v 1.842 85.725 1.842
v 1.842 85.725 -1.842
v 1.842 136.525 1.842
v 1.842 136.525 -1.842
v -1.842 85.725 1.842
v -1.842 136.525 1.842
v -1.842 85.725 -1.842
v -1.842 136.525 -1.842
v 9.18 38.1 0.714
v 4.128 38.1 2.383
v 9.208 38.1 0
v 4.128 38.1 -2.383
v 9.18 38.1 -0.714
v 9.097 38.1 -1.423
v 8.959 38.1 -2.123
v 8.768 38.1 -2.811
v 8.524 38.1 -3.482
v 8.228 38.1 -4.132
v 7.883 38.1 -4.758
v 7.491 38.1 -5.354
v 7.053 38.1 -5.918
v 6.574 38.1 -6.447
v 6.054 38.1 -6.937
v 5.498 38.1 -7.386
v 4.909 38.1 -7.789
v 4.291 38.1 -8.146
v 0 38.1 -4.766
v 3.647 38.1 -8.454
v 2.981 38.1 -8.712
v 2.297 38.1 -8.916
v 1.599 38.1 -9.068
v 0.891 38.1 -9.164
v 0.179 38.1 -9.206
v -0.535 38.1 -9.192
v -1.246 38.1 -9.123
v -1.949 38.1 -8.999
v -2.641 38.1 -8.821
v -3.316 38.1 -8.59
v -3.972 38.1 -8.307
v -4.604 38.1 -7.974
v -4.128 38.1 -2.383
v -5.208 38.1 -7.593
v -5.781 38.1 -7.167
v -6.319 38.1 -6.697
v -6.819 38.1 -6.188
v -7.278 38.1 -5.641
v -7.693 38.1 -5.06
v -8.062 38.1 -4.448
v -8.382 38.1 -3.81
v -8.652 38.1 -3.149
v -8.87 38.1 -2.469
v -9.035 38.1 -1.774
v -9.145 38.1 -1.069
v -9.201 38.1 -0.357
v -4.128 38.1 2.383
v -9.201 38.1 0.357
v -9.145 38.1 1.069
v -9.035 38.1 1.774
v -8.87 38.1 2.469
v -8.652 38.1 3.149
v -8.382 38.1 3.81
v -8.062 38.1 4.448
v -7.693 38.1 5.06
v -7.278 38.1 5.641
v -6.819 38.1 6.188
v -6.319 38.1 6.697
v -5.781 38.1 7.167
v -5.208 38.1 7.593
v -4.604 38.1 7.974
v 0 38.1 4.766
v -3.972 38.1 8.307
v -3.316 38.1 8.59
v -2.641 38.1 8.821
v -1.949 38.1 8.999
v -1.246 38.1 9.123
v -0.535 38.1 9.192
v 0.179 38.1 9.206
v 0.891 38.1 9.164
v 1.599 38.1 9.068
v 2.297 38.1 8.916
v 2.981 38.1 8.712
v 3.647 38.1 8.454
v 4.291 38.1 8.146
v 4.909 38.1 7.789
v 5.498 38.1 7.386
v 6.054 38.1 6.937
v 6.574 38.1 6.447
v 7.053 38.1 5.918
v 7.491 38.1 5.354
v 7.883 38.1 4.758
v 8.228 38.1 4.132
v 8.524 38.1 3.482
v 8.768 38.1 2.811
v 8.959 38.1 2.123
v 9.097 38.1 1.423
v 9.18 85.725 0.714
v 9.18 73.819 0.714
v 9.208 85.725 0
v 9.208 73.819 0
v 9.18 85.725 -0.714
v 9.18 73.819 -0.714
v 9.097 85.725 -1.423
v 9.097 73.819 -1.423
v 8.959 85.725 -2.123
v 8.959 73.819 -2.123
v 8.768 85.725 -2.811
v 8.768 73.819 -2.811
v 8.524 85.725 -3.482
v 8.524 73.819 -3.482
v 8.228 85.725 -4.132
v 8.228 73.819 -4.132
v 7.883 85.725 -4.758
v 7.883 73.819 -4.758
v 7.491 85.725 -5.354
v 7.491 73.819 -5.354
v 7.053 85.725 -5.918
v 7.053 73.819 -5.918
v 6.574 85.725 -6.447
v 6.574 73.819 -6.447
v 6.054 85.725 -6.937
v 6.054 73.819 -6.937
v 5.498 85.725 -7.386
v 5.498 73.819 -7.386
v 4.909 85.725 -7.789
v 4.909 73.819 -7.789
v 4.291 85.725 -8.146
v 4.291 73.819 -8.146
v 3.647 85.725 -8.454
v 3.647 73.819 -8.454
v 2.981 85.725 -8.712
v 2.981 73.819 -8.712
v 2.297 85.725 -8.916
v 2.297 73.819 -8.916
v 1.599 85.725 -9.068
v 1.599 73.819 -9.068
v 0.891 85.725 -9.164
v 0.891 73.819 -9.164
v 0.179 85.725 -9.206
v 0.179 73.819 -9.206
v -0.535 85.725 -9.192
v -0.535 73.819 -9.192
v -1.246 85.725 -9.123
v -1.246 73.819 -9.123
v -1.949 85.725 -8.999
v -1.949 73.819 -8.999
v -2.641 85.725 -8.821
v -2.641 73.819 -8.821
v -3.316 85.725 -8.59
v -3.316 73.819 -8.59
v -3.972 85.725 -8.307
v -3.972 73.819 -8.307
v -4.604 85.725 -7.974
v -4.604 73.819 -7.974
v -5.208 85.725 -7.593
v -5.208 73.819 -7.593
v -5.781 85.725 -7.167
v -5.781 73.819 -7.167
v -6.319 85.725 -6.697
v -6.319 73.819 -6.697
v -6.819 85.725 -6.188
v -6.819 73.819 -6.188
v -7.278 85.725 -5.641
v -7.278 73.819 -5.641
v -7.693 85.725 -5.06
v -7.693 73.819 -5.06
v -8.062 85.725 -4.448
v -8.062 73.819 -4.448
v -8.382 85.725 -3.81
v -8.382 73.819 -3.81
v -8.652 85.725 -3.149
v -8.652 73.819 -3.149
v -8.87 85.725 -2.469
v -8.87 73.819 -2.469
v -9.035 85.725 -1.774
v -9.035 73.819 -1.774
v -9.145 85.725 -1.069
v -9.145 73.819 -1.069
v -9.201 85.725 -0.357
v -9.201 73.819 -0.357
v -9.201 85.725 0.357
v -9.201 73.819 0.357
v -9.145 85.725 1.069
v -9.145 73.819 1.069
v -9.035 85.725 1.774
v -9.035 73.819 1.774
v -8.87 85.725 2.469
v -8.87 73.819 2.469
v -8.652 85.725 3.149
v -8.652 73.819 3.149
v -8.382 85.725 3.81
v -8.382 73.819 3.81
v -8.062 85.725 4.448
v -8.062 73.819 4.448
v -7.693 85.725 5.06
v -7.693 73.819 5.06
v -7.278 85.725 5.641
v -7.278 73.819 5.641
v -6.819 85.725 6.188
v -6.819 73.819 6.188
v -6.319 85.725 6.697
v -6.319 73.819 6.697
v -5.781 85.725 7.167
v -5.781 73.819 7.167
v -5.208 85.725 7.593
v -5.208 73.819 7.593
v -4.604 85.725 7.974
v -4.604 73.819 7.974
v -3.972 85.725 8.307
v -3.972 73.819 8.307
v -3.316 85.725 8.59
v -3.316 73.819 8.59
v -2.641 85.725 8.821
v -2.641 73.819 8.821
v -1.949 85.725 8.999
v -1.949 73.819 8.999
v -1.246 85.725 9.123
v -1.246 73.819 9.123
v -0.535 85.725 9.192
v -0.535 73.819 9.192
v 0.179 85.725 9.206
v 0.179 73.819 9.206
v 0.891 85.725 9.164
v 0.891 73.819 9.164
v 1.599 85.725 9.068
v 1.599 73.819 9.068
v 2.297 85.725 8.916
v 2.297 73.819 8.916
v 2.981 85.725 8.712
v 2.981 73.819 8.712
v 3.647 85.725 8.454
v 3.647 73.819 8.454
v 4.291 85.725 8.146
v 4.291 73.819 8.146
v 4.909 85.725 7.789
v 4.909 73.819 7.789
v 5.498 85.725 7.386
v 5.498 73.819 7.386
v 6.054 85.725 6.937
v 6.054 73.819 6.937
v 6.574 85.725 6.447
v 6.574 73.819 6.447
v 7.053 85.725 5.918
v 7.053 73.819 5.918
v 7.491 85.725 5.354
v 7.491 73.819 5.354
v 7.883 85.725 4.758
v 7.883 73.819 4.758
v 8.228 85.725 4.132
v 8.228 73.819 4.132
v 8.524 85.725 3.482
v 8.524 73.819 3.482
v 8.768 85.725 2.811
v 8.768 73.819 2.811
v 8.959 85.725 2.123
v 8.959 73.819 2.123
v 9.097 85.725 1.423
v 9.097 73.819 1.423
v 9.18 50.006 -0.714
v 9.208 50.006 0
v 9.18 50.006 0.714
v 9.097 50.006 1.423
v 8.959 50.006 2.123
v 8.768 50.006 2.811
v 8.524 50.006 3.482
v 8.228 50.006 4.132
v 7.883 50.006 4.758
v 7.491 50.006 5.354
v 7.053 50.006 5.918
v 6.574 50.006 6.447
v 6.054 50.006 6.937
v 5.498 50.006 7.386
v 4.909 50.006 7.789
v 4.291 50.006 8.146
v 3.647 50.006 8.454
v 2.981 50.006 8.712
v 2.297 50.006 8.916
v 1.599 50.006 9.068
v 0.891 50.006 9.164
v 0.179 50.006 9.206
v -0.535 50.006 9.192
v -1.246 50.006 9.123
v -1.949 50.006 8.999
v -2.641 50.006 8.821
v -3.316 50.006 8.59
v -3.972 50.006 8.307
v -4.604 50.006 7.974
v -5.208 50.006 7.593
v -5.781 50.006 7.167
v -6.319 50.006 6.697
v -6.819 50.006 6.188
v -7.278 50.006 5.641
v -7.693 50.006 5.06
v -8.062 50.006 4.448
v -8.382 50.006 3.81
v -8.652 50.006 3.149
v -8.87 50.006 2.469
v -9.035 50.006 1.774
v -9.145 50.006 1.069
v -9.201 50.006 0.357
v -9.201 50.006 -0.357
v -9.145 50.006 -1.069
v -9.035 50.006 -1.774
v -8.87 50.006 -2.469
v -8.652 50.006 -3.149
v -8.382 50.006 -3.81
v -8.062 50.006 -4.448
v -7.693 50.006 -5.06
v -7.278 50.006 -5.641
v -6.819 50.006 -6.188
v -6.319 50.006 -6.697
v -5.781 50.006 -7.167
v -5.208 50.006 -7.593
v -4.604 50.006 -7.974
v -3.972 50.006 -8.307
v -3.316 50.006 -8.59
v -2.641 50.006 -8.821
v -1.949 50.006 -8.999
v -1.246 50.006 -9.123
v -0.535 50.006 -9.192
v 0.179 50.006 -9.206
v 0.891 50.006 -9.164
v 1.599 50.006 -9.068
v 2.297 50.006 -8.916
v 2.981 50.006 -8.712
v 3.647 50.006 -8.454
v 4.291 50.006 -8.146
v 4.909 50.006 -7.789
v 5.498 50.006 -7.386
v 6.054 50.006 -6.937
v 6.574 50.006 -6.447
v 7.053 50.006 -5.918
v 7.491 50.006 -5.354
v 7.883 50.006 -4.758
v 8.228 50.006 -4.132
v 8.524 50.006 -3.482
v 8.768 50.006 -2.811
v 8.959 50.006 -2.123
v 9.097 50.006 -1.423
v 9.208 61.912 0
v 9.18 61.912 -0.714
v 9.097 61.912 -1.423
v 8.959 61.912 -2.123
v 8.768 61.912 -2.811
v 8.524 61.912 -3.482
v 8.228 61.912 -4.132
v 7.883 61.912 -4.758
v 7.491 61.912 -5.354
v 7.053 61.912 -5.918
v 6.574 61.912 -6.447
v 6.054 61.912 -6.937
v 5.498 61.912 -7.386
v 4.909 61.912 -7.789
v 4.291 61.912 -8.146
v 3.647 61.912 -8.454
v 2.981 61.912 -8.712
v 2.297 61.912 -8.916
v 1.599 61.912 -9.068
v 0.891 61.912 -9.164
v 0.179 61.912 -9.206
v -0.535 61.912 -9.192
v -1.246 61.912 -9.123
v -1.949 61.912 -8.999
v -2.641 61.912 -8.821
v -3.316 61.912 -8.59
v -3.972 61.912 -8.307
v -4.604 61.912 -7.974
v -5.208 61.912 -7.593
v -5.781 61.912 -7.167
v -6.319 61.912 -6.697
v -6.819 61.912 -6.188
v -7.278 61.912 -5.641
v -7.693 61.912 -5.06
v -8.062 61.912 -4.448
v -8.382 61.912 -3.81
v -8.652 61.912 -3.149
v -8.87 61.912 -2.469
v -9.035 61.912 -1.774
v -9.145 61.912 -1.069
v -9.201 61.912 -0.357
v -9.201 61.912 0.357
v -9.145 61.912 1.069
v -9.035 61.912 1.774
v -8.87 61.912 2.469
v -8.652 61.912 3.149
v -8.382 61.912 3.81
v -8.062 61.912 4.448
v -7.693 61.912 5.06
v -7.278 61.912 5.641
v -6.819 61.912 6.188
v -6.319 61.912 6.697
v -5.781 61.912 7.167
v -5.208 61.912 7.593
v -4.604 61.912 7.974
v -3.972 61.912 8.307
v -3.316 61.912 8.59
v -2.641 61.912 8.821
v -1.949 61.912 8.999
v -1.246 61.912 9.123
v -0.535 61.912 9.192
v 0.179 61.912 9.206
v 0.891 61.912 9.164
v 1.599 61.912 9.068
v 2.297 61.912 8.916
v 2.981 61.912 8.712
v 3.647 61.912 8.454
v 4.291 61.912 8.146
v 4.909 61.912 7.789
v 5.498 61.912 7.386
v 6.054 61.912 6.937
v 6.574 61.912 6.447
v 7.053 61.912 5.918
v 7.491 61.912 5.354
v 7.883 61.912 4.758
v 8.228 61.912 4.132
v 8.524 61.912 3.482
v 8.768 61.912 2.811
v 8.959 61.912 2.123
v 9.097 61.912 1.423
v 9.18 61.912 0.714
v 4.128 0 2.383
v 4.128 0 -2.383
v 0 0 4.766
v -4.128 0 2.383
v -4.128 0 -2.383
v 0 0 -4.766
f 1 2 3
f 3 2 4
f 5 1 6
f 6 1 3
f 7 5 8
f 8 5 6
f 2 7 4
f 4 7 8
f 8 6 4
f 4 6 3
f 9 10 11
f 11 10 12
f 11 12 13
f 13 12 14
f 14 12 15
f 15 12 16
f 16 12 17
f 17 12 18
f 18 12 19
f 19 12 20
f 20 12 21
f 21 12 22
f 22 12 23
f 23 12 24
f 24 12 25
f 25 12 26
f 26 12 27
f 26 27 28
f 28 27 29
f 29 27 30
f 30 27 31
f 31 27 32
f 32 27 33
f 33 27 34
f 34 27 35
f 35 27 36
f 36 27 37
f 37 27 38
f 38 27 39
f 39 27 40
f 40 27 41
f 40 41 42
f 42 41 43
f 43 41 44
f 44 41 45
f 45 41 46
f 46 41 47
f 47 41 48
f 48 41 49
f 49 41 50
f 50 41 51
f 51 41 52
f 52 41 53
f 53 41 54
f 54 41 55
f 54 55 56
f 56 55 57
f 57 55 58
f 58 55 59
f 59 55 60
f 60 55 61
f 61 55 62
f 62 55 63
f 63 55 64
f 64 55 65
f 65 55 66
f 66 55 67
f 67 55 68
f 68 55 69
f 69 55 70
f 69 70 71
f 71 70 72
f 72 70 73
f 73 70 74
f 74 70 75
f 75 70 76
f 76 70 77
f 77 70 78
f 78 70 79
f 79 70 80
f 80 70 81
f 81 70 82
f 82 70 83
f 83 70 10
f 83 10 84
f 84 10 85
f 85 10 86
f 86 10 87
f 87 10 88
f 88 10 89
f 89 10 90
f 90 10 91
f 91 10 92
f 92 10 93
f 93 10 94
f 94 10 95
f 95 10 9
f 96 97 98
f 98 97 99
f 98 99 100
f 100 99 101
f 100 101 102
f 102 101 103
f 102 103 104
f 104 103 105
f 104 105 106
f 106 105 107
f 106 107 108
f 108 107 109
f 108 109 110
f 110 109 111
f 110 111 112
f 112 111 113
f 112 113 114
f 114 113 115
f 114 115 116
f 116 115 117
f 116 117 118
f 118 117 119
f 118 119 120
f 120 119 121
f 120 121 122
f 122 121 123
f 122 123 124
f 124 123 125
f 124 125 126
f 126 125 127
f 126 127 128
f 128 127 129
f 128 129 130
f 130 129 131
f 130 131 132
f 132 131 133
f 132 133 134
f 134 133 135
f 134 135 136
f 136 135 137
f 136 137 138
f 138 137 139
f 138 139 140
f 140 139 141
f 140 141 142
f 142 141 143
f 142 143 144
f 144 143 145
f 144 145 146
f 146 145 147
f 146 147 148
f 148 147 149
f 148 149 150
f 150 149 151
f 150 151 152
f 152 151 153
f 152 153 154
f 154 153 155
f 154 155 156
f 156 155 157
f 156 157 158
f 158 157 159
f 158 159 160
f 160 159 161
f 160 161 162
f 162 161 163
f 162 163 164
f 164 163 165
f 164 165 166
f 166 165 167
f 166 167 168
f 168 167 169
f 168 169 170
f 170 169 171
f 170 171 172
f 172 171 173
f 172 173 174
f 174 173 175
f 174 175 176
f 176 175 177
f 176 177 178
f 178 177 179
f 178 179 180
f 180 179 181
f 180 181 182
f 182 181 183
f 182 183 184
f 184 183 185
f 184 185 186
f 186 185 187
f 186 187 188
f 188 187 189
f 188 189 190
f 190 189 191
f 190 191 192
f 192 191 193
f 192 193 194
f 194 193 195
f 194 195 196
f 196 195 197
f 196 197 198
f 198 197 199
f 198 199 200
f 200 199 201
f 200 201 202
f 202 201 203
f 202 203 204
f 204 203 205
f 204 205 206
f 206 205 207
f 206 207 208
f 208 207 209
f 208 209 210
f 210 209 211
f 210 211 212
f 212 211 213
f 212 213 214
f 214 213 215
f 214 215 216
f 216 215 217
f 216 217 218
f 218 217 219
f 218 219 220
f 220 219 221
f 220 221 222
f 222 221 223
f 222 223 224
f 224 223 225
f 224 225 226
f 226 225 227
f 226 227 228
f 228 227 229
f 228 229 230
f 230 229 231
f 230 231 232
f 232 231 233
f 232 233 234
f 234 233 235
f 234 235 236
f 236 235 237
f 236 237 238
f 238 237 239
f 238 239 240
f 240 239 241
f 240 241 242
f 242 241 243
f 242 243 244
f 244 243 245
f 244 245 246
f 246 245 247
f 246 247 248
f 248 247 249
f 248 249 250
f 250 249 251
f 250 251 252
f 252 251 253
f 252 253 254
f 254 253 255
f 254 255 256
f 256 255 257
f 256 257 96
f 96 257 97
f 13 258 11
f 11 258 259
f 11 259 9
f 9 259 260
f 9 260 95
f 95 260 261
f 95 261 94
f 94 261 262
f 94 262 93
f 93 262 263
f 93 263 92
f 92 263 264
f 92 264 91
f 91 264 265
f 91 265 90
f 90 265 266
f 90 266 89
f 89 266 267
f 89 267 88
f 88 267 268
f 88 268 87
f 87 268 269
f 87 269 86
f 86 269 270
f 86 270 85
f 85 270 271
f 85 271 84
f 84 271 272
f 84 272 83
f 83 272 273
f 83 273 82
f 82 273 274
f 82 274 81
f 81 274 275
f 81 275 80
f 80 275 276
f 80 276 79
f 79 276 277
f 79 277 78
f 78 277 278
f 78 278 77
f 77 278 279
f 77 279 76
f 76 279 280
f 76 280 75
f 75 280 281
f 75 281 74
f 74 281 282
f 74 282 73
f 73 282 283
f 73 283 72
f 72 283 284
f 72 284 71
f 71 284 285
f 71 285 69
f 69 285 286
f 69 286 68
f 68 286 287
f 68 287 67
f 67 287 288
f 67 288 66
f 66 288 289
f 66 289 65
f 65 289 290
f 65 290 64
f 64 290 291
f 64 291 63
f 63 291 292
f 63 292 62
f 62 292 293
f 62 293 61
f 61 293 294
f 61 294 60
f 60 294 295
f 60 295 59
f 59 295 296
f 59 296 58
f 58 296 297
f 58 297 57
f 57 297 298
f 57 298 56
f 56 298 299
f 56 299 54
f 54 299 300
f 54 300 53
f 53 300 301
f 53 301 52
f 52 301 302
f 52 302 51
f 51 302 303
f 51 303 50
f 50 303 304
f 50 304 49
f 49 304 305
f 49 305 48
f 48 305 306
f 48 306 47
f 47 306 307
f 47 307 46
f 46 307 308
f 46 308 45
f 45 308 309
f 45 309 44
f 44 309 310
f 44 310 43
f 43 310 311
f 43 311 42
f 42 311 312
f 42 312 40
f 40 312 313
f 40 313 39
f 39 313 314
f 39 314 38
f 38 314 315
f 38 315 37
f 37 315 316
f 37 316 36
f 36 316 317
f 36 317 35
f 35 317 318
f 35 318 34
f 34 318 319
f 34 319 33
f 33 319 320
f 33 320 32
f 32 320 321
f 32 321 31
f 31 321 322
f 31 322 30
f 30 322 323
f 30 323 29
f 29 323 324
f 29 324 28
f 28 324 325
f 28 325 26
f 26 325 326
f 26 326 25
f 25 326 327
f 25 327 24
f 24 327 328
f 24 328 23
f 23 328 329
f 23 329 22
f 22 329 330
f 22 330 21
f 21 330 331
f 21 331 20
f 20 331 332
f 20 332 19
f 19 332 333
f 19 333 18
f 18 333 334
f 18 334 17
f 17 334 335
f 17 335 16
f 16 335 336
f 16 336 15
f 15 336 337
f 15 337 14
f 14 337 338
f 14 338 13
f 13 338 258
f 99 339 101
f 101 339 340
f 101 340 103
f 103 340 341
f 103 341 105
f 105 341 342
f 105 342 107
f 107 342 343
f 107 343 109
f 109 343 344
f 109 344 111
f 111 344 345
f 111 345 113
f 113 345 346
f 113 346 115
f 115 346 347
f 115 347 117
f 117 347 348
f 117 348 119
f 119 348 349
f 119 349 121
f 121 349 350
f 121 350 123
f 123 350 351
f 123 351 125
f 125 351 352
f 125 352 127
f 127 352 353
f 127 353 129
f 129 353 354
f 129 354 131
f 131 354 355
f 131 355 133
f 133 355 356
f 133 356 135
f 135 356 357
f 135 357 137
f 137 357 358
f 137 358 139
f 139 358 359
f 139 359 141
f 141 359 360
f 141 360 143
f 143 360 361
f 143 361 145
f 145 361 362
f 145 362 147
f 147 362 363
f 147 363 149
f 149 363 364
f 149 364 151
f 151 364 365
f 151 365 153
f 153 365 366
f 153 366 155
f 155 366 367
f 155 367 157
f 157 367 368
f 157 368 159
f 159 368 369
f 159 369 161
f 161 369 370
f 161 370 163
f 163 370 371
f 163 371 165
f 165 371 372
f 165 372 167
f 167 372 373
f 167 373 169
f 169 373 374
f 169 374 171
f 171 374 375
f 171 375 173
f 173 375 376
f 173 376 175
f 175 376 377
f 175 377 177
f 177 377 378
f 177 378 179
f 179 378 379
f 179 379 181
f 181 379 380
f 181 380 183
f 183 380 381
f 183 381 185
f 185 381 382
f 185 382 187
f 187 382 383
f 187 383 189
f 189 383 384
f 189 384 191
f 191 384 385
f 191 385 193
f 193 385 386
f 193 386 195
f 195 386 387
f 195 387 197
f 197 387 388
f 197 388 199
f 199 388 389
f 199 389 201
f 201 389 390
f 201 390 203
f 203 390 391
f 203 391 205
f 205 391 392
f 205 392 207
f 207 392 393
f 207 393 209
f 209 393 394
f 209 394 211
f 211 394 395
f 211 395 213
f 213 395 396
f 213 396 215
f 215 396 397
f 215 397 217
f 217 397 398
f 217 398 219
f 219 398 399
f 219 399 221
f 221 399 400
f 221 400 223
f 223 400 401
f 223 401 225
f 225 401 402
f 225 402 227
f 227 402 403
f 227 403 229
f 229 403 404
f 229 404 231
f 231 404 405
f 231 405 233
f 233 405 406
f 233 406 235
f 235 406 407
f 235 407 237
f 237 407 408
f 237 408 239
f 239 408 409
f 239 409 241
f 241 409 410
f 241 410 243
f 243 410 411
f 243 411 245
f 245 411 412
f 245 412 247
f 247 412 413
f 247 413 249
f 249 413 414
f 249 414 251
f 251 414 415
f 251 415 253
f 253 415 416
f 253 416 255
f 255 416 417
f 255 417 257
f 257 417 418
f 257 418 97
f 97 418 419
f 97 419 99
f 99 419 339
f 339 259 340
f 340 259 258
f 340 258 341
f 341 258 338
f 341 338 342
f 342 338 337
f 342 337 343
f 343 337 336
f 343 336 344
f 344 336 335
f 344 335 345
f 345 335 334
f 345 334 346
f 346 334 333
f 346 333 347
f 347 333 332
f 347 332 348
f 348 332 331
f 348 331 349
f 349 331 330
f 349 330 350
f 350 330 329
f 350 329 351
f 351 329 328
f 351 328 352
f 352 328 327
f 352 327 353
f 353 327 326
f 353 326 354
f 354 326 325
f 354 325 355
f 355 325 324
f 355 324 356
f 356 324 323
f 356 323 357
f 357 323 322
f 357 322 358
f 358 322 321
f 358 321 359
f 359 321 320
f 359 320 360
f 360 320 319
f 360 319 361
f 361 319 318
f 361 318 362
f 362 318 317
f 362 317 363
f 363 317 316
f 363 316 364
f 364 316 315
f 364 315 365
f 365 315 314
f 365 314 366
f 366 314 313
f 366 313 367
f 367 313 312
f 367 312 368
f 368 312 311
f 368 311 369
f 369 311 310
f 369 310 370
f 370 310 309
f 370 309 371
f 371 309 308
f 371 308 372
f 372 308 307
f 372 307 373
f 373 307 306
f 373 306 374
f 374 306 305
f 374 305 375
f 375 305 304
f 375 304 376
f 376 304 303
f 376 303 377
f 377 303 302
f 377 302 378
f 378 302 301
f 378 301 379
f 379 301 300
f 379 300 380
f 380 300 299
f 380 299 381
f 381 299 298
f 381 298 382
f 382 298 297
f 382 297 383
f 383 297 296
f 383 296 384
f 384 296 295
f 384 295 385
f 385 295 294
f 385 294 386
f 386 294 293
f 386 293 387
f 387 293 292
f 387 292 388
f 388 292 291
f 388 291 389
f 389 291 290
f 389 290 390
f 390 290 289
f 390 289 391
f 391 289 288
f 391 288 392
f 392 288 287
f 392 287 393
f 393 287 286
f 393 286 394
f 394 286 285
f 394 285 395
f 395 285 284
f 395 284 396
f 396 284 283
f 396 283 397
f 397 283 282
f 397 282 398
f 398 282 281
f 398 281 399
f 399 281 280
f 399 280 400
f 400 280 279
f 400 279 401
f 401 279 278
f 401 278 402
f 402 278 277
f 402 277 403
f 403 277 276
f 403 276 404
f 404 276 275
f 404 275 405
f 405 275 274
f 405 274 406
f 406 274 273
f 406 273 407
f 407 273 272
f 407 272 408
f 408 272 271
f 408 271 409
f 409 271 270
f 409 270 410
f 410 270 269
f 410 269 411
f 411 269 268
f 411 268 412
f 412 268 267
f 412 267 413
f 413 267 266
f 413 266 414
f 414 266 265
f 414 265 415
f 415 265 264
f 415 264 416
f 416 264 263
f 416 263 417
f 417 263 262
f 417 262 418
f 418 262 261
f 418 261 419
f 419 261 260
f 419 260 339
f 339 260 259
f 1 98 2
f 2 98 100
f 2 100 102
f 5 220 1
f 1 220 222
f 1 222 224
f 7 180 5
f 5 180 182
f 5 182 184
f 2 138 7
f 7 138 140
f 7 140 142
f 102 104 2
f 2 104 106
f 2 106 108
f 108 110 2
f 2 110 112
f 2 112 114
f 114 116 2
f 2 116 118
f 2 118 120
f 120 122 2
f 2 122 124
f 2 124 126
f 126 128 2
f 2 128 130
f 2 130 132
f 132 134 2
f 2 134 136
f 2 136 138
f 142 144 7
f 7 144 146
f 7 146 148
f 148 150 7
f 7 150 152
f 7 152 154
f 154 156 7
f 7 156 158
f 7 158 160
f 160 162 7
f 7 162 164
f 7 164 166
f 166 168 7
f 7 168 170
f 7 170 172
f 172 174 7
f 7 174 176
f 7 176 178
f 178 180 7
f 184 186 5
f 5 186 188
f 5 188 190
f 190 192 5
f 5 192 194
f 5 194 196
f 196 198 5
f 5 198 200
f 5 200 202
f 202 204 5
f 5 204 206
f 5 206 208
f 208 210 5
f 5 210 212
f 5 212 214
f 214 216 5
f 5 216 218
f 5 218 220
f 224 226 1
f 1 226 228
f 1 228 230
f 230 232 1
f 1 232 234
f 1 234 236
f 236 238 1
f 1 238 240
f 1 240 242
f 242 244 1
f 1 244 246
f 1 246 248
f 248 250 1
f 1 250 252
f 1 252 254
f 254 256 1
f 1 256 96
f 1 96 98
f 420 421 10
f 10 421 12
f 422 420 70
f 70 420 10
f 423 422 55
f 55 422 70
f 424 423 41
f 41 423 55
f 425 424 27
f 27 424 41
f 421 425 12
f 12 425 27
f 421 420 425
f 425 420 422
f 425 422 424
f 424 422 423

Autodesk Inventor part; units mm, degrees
ref_plane "YZ Plane" through (0, 0, 0) normal (1, 0, 0) x (0, 1, 0)
ref_plane "XZ Plane" through (0, 0, 0) normal (0, 1, 0) x (-1, 0, 0)
ref_plane "XY Plane" through (0, 0, 0) normal (0, 0, 1) x (1, 0, 0)
sketch "Sketch1" plane through (0, 0, 0) normal (0, 1, 0) x (-1, 0, 0)
  line L0 (0, -4.766) -> (-4.1275, -2.383)
  line L1 (-4.1275, -2.383) -> (-4.1275, 2.383)
  line L2 (-4.1275, 2.383) -> (0, 4.766)
  line L3 (0, 4.766) -> (4.1275, 2.383)
  line L4 (4.1275, 2.383) -> (4.1275, -2.383)
  line L5 (4.1275, -2.383) -> (0, -4.766)
  point P0 (0, 0)
  point P1 (0, 0)
  dimension "d0" = 8.255
extrude "Extrusion1" add sketch "Sketch1" along normal blind 38.1
sketch "Sketch2" plane through (0, 38.1, 0) normal (0, 1, 0) x (1, 0, 0)
  circle A0 centre (0, 0) radius 9.2075
  dimension "d3" = 18.415
extrude "Extrusion2" add sketch "Sketch2" along normal blind 47.625
sketch "Sketch3" plane through (0, 85.725, 0) normal (0, 1, 0) x (1, 0, 0)
  line L0 (-1.8415, 1.8415) -> (1.8415, 1.8415)
  line L1 (1.8415, 1.8415) -> (1.8415, -1.8415)
  line L2 (1.8415, -1.8415) -> (-1.8415, -1.8415)
  line L3 (-1.8415, -1.8415) -> (-1.8415, 1.8415)
  point P0 (0, 0)
  point P1 (0, 0)
  dimension "d6" = 3.683
extrude "Extrusion3" add sketch "Sketch3" along normal blind 50.8
